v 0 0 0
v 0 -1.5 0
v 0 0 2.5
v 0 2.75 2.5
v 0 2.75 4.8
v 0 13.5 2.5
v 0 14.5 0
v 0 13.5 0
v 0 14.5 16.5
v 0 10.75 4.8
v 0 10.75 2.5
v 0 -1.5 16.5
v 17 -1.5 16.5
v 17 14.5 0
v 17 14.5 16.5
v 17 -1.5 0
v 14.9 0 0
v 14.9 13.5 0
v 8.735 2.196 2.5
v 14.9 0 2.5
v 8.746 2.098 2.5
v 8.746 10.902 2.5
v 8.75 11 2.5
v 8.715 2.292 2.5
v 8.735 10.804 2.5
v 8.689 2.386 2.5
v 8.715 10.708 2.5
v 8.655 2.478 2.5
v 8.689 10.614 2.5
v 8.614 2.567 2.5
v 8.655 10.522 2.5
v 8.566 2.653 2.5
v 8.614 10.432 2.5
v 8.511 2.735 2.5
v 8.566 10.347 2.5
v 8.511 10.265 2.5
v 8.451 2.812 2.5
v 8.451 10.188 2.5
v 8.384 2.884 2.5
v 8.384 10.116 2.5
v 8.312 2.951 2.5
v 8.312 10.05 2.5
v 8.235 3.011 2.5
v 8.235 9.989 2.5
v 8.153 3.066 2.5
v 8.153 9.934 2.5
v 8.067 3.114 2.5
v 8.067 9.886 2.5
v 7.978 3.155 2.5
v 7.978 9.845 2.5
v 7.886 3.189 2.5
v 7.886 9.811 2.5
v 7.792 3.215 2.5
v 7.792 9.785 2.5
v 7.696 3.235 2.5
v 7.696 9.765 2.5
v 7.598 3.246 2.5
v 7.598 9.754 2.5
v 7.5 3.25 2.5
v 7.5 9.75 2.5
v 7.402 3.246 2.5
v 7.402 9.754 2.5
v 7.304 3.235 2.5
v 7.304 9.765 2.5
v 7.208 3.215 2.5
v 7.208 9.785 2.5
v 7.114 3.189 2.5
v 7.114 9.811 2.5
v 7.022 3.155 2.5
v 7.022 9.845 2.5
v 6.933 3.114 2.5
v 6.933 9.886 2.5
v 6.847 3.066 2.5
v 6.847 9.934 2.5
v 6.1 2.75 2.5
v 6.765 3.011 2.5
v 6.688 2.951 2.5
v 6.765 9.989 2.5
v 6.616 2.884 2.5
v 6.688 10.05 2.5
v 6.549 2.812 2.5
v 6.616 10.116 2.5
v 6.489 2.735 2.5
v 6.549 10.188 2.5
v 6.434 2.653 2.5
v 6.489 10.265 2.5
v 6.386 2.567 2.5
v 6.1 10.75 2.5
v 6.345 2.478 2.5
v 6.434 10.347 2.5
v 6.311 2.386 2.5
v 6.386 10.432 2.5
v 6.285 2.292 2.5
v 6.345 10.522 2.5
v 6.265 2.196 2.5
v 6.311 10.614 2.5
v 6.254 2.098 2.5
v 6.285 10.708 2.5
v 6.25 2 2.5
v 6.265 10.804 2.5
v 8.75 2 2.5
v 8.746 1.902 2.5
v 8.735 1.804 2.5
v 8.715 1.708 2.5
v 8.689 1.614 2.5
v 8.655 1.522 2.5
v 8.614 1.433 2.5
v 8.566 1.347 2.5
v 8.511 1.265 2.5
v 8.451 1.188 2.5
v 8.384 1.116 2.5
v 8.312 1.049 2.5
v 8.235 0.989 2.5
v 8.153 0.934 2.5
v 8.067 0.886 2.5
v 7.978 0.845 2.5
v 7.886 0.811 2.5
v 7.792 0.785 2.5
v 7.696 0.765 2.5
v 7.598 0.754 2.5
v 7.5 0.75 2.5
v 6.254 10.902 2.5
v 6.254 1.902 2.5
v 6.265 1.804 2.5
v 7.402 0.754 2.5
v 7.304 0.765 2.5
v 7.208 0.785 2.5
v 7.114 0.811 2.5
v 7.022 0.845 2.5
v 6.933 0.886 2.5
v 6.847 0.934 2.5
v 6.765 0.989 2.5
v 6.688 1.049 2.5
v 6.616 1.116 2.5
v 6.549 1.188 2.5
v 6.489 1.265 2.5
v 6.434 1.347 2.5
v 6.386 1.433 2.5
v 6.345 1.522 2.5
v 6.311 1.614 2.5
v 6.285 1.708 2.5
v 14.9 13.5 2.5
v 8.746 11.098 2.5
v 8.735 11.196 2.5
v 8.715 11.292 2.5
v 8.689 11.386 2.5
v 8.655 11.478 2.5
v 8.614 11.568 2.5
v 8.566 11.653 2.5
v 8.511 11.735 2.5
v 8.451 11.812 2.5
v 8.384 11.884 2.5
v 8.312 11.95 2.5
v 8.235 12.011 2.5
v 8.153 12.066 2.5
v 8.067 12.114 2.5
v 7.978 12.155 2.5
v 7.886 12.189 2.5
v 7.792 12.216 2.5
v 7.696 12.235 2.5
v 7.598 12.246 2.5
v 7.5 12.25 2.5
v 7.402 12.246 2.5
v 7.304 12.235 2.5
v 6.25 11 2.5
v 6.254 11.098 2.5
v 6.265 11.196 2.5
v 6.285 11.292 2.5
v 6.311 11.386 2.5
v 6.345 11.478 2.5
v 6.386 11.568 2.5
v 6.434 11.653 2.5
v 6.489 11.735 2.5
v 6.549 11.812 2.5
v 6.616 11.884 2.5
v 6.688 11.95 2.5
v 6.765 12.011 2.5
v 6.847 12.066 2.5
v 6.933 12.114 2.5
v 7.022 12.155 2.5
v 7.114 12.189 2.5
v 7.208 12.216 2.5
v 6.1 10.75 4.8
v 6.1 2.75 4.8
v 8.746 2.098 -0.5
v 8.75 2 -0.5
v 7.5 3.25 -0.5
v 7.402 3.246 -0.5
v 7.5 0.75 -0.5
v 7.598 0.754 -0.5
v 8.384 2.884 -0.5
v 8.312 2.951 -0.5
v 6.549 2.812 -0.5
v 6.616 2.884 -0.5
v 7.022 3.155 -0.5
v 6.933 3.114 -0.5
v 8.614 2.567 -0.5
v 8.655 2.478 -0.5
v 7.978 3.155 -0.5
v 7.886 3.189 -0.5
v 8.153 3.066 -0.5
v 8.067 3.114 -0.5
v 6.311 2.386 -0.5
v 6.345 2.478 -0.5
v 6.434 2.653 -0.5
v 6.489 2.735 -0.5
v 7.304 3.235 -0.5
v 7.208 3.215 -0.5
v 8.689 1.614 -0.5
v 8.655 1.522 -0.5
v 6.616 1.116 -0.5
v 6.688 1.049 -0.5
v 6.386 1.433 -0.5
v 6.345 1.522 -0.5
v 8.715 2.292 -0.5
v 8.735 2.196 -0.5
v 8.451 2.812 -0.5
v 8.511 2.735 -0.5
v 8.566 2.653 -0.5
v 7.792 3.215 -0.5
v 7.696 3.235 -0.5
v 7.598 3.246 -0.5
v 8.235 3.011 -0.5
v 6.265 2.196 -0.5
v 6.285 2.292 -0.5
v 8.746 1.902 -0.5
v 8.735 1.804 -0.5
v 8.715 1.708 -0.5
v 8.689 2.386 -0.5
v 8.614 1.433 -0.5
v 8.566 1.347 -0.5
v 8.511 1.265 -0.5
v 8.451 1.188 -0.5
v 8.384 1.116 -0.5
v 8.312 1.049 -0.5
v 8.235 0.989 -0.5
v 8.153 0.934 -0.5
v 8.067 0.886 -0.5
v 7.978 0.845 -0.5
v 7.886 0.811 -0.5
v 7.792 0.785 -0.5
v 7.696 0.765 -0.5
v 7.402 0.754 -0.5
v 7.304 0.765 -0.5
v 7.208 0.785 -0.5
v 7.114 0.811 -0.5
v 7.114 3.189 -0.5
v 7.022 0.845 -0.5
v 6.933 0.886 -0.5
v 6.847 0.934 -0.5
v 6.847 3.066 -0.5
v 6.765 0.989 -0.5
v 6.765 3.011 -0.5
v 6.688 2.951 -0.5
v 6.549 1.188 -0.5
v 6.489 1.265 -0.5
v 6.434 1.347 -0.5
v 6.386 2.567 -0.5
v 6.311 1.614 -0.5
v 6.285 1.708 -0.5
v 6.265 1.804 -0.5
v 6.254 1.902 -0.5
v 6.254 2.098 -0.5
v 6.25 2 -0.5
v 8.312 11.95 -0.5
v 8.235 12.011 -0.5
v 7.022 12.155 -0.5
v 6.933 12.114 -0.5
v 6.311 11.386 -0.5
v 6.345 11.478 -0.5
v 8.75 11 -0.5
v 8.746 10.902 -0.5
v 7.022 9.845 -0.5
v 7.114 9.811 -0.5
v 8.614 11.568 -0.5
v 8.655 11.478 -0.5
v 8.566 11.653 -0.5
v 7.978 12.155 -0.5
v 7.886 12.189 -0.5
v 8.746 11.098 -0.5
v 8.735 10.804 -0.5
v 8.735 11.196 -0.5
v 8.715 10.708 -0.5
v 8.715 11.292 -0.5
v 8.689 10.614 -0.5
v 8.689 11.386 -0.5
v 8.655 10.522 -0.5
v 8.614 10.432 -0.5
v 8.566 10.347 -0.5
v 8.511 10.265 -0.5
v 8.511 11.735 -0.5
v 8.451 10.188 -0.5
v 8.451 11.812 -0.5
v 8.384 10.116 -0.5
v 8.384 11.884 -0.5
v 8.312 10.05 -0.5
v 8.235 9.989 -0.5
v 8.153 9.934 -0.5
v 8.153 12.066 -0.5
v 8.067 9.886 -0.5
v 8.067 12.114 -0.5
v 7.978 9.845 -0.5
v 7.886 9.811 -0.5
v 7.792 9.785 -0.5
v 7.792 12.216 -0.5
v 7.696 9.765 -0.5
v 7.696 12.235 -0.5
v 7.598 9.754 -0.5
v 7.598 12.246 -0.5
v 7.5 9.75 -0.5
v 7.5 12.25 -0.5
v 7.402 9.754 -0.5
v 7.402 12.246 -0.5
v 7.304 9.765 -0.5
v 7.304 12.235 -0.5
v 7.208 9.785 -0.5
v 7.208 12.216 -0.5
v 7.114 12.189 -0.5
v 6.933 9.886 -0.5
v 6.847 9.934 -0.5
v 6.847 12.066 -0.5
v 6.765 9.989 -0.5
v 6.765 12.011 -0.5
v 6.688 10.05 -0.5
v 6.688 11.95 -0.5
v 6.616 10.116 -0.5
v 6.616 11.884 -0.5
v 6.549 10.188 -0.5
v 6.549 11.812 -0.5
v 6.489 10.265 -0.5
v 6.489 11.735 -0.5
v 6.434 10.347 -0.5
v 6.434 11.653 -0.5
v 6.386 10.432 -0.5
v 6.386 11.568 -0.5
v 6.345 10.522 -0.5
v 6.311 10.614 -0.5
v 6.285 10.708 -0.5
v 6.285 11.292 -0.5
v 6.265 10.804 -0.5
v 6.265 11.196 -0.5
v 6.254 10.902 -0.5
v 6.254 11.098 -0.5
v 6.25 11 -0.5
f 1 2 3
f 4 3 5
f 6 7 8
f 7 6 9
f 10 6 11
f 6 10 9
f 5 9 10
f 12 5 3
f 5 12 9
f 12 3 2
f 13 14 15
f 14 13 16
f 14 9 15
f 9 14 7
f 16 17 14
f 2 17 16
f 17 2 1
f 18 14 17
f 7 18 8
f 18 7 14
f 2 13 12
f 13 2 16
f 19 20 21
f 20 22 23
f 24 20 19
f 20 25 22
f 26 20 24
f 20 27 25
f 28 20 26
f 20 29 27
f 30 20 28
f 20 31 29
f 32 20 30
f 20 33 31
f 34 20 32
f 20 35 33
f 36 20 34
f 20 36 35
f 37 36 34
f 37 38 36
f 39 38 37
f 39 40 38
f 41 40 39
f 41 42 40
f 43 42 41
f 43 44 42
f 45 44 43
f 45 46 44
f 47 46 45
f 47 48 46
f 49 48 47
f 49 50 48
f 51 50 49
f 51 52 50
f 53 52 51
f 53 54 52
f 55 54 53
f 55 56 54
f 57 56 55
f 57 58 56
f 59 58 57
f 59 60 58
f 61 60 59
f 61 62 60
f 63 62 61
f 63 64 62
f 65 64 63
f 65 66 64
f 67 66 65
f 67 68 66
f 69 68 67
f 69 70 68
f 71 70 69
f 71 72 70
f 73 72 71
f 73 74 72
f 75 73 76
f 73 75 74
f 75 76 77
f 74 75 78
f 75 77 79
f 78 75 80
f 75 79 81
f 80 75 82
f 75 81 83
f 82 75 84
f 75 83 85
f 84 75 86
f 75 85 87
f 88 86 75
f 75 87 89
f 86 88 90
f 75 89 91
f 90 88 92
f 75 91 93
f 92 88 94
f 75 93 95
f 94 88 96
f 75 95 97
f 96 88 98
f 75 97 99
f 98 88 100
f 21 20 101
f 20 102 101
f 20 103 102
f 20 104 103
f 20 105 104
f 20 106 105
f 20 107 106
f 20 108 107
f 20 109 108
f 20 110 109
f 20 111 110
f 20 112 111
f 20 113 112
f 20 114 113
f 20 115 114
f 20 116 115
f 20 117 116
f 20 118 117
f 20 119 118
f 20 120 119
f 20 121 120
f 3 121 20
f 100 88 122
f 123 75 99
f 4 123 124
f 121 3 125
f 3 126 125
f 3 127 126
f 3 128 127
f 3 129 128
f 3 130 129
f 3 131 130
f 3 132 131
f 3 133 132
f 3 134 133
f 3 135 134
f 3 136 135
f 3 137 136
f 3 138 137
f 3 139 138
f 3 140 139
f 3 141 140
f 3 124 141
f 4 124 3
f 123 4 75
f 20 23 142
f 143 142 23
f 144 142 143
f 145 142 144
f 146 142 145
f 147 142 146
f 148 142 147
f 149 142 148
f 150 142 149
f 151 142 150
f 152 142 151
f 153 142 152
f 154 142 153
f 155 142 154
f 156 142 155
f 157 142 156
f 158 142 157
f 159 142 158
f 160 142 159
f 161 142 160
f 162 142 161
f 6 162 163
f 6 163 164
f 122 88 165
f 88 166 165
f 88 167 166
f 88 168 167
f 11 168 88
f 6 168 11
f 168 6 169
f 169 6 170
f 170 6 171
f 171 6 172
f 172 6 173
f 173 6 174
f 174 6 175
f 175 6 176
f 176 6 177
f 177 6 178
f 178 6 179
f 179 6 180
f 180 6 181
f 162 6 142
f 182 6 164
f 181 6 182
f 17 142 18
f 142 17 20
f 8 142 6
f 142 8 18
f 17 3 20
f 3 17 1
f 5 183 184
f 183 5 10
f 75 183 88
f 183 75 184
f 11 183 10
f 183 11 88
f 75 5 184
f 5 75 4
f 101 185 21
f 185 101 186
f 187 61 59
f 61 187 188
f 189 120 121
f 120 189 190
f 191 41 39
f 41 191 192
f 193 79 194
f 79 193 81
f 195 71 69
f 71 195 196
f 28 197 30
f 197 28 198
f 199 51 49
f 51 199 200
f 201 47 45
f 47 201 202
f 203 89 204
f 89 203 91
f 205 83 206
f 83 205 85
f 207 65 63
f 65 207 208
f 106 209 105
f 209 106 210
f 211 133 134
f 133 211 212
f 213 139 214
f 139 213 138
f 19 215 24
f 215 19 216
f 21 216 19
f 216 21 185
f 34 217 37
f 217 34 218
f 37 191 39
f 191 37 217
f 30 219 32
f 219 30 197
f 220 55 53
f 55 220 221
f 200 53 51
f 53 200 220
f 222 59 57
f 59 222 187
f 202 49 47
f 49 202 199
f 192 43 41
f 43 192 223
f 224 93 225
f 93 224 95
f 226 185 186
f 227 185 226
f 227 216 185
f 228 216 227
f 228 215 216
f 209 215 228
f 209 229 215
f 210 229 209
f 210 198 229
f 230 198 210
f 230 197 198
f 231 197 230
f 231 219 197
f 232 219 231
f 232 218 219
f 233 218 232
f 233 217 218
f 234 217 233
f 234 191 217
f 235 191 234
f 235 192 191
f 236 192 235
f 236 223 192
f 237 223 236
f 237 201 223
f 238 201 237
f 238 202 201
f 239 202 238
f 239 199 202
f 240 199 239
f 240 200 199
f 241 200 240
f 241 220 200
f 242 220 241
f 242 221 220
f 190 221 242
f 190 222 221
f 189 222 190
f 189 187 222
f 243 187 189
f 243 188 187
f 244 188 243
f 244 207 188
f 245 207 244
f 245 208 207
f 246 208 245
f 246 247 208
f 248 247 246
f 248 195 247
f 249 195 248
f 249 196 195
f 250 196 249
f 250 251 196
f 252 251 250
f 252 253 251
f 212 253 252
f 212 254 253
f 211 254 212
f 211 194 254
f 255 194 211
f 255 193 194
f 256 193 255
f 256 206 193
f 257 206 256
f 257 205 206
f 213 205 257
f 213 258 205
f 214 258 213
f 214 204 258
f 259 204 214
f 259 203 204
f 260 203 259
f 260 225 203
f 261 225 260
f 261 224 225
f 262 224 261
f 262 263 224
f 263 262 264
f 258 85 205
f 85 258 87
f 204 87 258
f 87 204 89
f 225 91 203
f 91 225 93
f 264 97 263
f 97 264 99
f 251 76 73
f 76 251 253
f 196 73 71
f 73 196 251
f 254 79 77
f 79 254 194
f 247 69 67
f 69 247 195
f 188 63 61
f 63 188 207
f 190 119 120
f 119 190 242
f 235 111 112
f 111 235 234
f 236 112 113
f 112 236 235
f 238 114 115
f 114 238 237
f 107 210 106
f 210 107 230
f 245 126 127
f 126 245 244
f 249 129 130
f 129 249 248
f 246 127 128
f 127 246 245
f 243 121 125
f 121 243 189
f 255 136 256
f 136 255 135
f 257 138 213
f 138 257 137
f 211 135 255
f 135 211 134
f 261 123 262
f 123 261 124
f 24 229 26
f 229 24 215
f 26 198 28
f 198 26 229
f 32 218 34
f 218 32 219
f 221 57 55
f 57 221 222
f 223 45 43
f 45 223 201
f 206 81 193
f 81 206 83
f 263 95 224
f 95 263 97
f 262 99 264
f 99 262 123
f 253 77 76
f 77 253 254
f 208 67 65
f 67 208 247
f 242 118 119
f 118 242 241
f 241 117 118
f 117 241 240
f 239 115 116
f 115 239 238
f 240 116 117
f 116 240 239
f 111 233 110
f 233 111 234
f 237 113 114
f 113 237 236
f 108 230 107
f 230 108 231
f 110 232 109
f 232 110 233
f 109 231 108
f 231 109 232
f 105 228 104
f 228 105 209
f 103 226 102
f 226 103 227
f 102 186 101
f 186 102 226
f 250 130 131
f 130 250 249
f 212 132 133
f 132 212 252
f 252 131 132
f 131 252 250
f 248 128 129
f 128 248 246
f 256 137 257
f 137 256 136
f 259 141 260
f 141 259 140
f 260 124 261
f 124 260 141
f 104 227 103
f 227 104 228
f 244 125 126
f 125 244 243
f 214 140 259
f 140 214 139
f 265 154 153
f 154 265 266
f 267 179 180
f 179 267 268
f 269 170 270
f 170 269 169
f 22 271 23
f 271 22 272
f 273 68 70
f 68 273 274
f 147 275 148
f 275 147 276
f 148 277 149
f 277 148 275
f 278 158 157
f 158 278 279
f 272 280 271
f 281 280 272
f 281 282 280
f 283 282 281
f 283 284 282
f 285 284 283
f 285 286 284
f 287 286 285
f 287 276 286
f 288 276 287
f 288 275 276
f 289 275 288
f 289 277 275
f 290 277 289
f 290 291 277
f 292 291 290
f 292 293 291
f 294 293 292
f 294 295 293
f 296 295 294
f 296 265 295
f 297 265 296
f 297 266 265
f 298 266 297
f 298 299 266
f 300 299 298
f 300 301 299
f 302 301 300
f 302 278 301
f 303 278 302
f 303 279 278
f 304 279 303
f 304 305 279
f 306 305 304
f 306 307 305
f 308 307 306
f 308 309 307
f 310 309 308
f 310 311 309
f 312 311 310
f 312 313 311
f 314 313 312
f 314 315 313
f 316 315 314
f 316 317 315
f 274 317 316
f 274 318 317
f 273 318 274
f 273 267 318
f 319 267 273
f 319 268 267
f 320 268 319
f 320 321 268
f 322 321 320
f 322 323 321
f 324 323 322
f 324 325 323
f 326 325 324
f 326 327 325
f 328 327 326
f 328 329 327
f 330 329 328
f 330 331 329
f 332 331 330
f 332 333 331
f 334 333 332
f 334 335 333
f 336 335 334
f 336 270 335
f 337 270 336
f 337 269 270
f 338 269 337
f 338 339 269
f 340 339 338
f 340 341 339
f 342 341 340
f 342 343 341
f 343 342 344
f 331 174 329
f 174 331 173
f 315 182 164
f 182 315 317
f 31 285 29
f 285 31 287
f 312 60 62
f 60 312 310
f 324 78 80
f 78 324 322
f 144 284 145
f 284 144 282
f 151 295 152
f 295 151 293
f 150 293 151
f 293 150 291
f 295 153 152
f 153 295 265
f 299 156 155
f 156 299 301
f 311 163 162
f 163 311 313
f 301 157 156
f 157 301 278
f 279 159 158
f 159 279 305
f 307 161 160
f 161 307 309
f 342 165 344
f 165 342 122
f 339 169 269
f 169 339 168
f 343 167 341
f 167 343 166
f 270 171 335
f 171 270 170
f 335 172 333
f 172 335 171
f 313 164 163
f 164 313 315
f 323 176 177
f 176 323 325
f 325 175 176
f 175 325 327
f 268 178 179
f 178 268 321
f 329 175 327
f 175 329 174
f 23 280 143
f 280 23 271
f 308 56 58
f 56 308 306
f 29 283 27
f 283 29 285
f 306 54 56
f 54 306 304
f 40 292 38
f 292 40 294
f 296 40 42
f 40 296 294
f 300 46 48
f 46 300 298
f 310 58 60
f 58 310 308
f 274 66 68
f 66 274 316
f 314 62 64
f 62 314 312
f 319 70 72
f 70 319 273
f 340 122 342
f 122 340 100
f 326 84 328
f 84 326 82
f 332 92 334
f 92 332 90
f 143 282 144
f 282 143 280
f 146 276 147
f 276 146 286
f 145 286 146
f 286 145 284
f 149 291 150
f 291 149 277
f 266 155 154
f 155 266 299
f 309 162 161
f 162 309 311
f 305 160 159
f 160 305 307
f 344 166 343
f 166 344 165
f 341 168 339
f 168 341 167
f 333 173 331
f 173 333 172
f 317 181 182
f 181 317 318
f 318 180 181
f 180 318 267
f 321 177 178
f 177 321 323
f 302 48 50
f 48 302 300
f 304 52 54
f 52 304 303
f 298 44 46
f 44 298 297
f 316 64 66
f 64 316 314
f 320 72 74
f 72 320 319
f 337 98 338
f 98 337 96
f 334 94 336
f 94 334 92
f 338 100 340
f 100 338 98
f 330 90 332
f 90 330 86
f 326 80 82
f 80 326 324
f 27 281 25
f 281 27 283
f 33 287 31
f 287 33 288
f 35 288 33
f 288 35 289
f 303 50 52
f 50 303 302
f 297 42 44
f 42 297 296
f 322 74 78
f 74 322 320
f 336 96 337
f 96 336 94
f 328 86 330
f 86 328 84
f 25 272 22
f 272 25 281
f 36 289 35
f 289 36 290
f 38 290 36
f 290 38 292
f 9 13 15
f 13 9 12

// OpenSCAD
// file: hggh/mico_usb_breakout_holder.scad
USB_PCB_SIZE_X = 14.9;
USB_PCB_SIZE_Y = 13.5;
USB_PCB_SIZE_Z =  2.5;

USB_CONN_X = 6.1;
USB_CONN_Y = 8.0;
USB_CONN_Z = 2.3;

module mico_usb_breakout_holder() {
    union() {
        difference() {
            translate([0, -1.5, 0]) cube([17, 16, 6]);
            translate([-0.1, 0, -0.1]) {
                cube([USB_PCB_SIZE_X + 0.1, USB_PCB_SIZE_Y, USB_PCB_SIZE_Z + 0.1]);
            }
            BOX_A = USB_PCB_SIZE_Y / 2 - USB_CONN_Y /2;
            translate([-0.1, BOX_A, USB_PCB_SIZE_Z - 0.1]) {
                cube([USB_CONN_X + 0.1, USB_CONN_Y, USB_CONN_Z + 0.1]);
            }
        }
        translate([7.5, 2, -0.5]) {
            cylinder(d=2.5, h=4, $fn=80);
        }
        translate([7.5, USB_PCB_SIZE_Y - 2.5, -0.5]) {
            cylinder(d=2.5, h=4, $fn=80);
        }
    }
}
// main file
use <hggh/mico_usb_breakout_holder.scad>


mico_usb_breakout_holder();
translate([0, -1.5, 6]) {
    cube([17, 16, 10.5]);
}
